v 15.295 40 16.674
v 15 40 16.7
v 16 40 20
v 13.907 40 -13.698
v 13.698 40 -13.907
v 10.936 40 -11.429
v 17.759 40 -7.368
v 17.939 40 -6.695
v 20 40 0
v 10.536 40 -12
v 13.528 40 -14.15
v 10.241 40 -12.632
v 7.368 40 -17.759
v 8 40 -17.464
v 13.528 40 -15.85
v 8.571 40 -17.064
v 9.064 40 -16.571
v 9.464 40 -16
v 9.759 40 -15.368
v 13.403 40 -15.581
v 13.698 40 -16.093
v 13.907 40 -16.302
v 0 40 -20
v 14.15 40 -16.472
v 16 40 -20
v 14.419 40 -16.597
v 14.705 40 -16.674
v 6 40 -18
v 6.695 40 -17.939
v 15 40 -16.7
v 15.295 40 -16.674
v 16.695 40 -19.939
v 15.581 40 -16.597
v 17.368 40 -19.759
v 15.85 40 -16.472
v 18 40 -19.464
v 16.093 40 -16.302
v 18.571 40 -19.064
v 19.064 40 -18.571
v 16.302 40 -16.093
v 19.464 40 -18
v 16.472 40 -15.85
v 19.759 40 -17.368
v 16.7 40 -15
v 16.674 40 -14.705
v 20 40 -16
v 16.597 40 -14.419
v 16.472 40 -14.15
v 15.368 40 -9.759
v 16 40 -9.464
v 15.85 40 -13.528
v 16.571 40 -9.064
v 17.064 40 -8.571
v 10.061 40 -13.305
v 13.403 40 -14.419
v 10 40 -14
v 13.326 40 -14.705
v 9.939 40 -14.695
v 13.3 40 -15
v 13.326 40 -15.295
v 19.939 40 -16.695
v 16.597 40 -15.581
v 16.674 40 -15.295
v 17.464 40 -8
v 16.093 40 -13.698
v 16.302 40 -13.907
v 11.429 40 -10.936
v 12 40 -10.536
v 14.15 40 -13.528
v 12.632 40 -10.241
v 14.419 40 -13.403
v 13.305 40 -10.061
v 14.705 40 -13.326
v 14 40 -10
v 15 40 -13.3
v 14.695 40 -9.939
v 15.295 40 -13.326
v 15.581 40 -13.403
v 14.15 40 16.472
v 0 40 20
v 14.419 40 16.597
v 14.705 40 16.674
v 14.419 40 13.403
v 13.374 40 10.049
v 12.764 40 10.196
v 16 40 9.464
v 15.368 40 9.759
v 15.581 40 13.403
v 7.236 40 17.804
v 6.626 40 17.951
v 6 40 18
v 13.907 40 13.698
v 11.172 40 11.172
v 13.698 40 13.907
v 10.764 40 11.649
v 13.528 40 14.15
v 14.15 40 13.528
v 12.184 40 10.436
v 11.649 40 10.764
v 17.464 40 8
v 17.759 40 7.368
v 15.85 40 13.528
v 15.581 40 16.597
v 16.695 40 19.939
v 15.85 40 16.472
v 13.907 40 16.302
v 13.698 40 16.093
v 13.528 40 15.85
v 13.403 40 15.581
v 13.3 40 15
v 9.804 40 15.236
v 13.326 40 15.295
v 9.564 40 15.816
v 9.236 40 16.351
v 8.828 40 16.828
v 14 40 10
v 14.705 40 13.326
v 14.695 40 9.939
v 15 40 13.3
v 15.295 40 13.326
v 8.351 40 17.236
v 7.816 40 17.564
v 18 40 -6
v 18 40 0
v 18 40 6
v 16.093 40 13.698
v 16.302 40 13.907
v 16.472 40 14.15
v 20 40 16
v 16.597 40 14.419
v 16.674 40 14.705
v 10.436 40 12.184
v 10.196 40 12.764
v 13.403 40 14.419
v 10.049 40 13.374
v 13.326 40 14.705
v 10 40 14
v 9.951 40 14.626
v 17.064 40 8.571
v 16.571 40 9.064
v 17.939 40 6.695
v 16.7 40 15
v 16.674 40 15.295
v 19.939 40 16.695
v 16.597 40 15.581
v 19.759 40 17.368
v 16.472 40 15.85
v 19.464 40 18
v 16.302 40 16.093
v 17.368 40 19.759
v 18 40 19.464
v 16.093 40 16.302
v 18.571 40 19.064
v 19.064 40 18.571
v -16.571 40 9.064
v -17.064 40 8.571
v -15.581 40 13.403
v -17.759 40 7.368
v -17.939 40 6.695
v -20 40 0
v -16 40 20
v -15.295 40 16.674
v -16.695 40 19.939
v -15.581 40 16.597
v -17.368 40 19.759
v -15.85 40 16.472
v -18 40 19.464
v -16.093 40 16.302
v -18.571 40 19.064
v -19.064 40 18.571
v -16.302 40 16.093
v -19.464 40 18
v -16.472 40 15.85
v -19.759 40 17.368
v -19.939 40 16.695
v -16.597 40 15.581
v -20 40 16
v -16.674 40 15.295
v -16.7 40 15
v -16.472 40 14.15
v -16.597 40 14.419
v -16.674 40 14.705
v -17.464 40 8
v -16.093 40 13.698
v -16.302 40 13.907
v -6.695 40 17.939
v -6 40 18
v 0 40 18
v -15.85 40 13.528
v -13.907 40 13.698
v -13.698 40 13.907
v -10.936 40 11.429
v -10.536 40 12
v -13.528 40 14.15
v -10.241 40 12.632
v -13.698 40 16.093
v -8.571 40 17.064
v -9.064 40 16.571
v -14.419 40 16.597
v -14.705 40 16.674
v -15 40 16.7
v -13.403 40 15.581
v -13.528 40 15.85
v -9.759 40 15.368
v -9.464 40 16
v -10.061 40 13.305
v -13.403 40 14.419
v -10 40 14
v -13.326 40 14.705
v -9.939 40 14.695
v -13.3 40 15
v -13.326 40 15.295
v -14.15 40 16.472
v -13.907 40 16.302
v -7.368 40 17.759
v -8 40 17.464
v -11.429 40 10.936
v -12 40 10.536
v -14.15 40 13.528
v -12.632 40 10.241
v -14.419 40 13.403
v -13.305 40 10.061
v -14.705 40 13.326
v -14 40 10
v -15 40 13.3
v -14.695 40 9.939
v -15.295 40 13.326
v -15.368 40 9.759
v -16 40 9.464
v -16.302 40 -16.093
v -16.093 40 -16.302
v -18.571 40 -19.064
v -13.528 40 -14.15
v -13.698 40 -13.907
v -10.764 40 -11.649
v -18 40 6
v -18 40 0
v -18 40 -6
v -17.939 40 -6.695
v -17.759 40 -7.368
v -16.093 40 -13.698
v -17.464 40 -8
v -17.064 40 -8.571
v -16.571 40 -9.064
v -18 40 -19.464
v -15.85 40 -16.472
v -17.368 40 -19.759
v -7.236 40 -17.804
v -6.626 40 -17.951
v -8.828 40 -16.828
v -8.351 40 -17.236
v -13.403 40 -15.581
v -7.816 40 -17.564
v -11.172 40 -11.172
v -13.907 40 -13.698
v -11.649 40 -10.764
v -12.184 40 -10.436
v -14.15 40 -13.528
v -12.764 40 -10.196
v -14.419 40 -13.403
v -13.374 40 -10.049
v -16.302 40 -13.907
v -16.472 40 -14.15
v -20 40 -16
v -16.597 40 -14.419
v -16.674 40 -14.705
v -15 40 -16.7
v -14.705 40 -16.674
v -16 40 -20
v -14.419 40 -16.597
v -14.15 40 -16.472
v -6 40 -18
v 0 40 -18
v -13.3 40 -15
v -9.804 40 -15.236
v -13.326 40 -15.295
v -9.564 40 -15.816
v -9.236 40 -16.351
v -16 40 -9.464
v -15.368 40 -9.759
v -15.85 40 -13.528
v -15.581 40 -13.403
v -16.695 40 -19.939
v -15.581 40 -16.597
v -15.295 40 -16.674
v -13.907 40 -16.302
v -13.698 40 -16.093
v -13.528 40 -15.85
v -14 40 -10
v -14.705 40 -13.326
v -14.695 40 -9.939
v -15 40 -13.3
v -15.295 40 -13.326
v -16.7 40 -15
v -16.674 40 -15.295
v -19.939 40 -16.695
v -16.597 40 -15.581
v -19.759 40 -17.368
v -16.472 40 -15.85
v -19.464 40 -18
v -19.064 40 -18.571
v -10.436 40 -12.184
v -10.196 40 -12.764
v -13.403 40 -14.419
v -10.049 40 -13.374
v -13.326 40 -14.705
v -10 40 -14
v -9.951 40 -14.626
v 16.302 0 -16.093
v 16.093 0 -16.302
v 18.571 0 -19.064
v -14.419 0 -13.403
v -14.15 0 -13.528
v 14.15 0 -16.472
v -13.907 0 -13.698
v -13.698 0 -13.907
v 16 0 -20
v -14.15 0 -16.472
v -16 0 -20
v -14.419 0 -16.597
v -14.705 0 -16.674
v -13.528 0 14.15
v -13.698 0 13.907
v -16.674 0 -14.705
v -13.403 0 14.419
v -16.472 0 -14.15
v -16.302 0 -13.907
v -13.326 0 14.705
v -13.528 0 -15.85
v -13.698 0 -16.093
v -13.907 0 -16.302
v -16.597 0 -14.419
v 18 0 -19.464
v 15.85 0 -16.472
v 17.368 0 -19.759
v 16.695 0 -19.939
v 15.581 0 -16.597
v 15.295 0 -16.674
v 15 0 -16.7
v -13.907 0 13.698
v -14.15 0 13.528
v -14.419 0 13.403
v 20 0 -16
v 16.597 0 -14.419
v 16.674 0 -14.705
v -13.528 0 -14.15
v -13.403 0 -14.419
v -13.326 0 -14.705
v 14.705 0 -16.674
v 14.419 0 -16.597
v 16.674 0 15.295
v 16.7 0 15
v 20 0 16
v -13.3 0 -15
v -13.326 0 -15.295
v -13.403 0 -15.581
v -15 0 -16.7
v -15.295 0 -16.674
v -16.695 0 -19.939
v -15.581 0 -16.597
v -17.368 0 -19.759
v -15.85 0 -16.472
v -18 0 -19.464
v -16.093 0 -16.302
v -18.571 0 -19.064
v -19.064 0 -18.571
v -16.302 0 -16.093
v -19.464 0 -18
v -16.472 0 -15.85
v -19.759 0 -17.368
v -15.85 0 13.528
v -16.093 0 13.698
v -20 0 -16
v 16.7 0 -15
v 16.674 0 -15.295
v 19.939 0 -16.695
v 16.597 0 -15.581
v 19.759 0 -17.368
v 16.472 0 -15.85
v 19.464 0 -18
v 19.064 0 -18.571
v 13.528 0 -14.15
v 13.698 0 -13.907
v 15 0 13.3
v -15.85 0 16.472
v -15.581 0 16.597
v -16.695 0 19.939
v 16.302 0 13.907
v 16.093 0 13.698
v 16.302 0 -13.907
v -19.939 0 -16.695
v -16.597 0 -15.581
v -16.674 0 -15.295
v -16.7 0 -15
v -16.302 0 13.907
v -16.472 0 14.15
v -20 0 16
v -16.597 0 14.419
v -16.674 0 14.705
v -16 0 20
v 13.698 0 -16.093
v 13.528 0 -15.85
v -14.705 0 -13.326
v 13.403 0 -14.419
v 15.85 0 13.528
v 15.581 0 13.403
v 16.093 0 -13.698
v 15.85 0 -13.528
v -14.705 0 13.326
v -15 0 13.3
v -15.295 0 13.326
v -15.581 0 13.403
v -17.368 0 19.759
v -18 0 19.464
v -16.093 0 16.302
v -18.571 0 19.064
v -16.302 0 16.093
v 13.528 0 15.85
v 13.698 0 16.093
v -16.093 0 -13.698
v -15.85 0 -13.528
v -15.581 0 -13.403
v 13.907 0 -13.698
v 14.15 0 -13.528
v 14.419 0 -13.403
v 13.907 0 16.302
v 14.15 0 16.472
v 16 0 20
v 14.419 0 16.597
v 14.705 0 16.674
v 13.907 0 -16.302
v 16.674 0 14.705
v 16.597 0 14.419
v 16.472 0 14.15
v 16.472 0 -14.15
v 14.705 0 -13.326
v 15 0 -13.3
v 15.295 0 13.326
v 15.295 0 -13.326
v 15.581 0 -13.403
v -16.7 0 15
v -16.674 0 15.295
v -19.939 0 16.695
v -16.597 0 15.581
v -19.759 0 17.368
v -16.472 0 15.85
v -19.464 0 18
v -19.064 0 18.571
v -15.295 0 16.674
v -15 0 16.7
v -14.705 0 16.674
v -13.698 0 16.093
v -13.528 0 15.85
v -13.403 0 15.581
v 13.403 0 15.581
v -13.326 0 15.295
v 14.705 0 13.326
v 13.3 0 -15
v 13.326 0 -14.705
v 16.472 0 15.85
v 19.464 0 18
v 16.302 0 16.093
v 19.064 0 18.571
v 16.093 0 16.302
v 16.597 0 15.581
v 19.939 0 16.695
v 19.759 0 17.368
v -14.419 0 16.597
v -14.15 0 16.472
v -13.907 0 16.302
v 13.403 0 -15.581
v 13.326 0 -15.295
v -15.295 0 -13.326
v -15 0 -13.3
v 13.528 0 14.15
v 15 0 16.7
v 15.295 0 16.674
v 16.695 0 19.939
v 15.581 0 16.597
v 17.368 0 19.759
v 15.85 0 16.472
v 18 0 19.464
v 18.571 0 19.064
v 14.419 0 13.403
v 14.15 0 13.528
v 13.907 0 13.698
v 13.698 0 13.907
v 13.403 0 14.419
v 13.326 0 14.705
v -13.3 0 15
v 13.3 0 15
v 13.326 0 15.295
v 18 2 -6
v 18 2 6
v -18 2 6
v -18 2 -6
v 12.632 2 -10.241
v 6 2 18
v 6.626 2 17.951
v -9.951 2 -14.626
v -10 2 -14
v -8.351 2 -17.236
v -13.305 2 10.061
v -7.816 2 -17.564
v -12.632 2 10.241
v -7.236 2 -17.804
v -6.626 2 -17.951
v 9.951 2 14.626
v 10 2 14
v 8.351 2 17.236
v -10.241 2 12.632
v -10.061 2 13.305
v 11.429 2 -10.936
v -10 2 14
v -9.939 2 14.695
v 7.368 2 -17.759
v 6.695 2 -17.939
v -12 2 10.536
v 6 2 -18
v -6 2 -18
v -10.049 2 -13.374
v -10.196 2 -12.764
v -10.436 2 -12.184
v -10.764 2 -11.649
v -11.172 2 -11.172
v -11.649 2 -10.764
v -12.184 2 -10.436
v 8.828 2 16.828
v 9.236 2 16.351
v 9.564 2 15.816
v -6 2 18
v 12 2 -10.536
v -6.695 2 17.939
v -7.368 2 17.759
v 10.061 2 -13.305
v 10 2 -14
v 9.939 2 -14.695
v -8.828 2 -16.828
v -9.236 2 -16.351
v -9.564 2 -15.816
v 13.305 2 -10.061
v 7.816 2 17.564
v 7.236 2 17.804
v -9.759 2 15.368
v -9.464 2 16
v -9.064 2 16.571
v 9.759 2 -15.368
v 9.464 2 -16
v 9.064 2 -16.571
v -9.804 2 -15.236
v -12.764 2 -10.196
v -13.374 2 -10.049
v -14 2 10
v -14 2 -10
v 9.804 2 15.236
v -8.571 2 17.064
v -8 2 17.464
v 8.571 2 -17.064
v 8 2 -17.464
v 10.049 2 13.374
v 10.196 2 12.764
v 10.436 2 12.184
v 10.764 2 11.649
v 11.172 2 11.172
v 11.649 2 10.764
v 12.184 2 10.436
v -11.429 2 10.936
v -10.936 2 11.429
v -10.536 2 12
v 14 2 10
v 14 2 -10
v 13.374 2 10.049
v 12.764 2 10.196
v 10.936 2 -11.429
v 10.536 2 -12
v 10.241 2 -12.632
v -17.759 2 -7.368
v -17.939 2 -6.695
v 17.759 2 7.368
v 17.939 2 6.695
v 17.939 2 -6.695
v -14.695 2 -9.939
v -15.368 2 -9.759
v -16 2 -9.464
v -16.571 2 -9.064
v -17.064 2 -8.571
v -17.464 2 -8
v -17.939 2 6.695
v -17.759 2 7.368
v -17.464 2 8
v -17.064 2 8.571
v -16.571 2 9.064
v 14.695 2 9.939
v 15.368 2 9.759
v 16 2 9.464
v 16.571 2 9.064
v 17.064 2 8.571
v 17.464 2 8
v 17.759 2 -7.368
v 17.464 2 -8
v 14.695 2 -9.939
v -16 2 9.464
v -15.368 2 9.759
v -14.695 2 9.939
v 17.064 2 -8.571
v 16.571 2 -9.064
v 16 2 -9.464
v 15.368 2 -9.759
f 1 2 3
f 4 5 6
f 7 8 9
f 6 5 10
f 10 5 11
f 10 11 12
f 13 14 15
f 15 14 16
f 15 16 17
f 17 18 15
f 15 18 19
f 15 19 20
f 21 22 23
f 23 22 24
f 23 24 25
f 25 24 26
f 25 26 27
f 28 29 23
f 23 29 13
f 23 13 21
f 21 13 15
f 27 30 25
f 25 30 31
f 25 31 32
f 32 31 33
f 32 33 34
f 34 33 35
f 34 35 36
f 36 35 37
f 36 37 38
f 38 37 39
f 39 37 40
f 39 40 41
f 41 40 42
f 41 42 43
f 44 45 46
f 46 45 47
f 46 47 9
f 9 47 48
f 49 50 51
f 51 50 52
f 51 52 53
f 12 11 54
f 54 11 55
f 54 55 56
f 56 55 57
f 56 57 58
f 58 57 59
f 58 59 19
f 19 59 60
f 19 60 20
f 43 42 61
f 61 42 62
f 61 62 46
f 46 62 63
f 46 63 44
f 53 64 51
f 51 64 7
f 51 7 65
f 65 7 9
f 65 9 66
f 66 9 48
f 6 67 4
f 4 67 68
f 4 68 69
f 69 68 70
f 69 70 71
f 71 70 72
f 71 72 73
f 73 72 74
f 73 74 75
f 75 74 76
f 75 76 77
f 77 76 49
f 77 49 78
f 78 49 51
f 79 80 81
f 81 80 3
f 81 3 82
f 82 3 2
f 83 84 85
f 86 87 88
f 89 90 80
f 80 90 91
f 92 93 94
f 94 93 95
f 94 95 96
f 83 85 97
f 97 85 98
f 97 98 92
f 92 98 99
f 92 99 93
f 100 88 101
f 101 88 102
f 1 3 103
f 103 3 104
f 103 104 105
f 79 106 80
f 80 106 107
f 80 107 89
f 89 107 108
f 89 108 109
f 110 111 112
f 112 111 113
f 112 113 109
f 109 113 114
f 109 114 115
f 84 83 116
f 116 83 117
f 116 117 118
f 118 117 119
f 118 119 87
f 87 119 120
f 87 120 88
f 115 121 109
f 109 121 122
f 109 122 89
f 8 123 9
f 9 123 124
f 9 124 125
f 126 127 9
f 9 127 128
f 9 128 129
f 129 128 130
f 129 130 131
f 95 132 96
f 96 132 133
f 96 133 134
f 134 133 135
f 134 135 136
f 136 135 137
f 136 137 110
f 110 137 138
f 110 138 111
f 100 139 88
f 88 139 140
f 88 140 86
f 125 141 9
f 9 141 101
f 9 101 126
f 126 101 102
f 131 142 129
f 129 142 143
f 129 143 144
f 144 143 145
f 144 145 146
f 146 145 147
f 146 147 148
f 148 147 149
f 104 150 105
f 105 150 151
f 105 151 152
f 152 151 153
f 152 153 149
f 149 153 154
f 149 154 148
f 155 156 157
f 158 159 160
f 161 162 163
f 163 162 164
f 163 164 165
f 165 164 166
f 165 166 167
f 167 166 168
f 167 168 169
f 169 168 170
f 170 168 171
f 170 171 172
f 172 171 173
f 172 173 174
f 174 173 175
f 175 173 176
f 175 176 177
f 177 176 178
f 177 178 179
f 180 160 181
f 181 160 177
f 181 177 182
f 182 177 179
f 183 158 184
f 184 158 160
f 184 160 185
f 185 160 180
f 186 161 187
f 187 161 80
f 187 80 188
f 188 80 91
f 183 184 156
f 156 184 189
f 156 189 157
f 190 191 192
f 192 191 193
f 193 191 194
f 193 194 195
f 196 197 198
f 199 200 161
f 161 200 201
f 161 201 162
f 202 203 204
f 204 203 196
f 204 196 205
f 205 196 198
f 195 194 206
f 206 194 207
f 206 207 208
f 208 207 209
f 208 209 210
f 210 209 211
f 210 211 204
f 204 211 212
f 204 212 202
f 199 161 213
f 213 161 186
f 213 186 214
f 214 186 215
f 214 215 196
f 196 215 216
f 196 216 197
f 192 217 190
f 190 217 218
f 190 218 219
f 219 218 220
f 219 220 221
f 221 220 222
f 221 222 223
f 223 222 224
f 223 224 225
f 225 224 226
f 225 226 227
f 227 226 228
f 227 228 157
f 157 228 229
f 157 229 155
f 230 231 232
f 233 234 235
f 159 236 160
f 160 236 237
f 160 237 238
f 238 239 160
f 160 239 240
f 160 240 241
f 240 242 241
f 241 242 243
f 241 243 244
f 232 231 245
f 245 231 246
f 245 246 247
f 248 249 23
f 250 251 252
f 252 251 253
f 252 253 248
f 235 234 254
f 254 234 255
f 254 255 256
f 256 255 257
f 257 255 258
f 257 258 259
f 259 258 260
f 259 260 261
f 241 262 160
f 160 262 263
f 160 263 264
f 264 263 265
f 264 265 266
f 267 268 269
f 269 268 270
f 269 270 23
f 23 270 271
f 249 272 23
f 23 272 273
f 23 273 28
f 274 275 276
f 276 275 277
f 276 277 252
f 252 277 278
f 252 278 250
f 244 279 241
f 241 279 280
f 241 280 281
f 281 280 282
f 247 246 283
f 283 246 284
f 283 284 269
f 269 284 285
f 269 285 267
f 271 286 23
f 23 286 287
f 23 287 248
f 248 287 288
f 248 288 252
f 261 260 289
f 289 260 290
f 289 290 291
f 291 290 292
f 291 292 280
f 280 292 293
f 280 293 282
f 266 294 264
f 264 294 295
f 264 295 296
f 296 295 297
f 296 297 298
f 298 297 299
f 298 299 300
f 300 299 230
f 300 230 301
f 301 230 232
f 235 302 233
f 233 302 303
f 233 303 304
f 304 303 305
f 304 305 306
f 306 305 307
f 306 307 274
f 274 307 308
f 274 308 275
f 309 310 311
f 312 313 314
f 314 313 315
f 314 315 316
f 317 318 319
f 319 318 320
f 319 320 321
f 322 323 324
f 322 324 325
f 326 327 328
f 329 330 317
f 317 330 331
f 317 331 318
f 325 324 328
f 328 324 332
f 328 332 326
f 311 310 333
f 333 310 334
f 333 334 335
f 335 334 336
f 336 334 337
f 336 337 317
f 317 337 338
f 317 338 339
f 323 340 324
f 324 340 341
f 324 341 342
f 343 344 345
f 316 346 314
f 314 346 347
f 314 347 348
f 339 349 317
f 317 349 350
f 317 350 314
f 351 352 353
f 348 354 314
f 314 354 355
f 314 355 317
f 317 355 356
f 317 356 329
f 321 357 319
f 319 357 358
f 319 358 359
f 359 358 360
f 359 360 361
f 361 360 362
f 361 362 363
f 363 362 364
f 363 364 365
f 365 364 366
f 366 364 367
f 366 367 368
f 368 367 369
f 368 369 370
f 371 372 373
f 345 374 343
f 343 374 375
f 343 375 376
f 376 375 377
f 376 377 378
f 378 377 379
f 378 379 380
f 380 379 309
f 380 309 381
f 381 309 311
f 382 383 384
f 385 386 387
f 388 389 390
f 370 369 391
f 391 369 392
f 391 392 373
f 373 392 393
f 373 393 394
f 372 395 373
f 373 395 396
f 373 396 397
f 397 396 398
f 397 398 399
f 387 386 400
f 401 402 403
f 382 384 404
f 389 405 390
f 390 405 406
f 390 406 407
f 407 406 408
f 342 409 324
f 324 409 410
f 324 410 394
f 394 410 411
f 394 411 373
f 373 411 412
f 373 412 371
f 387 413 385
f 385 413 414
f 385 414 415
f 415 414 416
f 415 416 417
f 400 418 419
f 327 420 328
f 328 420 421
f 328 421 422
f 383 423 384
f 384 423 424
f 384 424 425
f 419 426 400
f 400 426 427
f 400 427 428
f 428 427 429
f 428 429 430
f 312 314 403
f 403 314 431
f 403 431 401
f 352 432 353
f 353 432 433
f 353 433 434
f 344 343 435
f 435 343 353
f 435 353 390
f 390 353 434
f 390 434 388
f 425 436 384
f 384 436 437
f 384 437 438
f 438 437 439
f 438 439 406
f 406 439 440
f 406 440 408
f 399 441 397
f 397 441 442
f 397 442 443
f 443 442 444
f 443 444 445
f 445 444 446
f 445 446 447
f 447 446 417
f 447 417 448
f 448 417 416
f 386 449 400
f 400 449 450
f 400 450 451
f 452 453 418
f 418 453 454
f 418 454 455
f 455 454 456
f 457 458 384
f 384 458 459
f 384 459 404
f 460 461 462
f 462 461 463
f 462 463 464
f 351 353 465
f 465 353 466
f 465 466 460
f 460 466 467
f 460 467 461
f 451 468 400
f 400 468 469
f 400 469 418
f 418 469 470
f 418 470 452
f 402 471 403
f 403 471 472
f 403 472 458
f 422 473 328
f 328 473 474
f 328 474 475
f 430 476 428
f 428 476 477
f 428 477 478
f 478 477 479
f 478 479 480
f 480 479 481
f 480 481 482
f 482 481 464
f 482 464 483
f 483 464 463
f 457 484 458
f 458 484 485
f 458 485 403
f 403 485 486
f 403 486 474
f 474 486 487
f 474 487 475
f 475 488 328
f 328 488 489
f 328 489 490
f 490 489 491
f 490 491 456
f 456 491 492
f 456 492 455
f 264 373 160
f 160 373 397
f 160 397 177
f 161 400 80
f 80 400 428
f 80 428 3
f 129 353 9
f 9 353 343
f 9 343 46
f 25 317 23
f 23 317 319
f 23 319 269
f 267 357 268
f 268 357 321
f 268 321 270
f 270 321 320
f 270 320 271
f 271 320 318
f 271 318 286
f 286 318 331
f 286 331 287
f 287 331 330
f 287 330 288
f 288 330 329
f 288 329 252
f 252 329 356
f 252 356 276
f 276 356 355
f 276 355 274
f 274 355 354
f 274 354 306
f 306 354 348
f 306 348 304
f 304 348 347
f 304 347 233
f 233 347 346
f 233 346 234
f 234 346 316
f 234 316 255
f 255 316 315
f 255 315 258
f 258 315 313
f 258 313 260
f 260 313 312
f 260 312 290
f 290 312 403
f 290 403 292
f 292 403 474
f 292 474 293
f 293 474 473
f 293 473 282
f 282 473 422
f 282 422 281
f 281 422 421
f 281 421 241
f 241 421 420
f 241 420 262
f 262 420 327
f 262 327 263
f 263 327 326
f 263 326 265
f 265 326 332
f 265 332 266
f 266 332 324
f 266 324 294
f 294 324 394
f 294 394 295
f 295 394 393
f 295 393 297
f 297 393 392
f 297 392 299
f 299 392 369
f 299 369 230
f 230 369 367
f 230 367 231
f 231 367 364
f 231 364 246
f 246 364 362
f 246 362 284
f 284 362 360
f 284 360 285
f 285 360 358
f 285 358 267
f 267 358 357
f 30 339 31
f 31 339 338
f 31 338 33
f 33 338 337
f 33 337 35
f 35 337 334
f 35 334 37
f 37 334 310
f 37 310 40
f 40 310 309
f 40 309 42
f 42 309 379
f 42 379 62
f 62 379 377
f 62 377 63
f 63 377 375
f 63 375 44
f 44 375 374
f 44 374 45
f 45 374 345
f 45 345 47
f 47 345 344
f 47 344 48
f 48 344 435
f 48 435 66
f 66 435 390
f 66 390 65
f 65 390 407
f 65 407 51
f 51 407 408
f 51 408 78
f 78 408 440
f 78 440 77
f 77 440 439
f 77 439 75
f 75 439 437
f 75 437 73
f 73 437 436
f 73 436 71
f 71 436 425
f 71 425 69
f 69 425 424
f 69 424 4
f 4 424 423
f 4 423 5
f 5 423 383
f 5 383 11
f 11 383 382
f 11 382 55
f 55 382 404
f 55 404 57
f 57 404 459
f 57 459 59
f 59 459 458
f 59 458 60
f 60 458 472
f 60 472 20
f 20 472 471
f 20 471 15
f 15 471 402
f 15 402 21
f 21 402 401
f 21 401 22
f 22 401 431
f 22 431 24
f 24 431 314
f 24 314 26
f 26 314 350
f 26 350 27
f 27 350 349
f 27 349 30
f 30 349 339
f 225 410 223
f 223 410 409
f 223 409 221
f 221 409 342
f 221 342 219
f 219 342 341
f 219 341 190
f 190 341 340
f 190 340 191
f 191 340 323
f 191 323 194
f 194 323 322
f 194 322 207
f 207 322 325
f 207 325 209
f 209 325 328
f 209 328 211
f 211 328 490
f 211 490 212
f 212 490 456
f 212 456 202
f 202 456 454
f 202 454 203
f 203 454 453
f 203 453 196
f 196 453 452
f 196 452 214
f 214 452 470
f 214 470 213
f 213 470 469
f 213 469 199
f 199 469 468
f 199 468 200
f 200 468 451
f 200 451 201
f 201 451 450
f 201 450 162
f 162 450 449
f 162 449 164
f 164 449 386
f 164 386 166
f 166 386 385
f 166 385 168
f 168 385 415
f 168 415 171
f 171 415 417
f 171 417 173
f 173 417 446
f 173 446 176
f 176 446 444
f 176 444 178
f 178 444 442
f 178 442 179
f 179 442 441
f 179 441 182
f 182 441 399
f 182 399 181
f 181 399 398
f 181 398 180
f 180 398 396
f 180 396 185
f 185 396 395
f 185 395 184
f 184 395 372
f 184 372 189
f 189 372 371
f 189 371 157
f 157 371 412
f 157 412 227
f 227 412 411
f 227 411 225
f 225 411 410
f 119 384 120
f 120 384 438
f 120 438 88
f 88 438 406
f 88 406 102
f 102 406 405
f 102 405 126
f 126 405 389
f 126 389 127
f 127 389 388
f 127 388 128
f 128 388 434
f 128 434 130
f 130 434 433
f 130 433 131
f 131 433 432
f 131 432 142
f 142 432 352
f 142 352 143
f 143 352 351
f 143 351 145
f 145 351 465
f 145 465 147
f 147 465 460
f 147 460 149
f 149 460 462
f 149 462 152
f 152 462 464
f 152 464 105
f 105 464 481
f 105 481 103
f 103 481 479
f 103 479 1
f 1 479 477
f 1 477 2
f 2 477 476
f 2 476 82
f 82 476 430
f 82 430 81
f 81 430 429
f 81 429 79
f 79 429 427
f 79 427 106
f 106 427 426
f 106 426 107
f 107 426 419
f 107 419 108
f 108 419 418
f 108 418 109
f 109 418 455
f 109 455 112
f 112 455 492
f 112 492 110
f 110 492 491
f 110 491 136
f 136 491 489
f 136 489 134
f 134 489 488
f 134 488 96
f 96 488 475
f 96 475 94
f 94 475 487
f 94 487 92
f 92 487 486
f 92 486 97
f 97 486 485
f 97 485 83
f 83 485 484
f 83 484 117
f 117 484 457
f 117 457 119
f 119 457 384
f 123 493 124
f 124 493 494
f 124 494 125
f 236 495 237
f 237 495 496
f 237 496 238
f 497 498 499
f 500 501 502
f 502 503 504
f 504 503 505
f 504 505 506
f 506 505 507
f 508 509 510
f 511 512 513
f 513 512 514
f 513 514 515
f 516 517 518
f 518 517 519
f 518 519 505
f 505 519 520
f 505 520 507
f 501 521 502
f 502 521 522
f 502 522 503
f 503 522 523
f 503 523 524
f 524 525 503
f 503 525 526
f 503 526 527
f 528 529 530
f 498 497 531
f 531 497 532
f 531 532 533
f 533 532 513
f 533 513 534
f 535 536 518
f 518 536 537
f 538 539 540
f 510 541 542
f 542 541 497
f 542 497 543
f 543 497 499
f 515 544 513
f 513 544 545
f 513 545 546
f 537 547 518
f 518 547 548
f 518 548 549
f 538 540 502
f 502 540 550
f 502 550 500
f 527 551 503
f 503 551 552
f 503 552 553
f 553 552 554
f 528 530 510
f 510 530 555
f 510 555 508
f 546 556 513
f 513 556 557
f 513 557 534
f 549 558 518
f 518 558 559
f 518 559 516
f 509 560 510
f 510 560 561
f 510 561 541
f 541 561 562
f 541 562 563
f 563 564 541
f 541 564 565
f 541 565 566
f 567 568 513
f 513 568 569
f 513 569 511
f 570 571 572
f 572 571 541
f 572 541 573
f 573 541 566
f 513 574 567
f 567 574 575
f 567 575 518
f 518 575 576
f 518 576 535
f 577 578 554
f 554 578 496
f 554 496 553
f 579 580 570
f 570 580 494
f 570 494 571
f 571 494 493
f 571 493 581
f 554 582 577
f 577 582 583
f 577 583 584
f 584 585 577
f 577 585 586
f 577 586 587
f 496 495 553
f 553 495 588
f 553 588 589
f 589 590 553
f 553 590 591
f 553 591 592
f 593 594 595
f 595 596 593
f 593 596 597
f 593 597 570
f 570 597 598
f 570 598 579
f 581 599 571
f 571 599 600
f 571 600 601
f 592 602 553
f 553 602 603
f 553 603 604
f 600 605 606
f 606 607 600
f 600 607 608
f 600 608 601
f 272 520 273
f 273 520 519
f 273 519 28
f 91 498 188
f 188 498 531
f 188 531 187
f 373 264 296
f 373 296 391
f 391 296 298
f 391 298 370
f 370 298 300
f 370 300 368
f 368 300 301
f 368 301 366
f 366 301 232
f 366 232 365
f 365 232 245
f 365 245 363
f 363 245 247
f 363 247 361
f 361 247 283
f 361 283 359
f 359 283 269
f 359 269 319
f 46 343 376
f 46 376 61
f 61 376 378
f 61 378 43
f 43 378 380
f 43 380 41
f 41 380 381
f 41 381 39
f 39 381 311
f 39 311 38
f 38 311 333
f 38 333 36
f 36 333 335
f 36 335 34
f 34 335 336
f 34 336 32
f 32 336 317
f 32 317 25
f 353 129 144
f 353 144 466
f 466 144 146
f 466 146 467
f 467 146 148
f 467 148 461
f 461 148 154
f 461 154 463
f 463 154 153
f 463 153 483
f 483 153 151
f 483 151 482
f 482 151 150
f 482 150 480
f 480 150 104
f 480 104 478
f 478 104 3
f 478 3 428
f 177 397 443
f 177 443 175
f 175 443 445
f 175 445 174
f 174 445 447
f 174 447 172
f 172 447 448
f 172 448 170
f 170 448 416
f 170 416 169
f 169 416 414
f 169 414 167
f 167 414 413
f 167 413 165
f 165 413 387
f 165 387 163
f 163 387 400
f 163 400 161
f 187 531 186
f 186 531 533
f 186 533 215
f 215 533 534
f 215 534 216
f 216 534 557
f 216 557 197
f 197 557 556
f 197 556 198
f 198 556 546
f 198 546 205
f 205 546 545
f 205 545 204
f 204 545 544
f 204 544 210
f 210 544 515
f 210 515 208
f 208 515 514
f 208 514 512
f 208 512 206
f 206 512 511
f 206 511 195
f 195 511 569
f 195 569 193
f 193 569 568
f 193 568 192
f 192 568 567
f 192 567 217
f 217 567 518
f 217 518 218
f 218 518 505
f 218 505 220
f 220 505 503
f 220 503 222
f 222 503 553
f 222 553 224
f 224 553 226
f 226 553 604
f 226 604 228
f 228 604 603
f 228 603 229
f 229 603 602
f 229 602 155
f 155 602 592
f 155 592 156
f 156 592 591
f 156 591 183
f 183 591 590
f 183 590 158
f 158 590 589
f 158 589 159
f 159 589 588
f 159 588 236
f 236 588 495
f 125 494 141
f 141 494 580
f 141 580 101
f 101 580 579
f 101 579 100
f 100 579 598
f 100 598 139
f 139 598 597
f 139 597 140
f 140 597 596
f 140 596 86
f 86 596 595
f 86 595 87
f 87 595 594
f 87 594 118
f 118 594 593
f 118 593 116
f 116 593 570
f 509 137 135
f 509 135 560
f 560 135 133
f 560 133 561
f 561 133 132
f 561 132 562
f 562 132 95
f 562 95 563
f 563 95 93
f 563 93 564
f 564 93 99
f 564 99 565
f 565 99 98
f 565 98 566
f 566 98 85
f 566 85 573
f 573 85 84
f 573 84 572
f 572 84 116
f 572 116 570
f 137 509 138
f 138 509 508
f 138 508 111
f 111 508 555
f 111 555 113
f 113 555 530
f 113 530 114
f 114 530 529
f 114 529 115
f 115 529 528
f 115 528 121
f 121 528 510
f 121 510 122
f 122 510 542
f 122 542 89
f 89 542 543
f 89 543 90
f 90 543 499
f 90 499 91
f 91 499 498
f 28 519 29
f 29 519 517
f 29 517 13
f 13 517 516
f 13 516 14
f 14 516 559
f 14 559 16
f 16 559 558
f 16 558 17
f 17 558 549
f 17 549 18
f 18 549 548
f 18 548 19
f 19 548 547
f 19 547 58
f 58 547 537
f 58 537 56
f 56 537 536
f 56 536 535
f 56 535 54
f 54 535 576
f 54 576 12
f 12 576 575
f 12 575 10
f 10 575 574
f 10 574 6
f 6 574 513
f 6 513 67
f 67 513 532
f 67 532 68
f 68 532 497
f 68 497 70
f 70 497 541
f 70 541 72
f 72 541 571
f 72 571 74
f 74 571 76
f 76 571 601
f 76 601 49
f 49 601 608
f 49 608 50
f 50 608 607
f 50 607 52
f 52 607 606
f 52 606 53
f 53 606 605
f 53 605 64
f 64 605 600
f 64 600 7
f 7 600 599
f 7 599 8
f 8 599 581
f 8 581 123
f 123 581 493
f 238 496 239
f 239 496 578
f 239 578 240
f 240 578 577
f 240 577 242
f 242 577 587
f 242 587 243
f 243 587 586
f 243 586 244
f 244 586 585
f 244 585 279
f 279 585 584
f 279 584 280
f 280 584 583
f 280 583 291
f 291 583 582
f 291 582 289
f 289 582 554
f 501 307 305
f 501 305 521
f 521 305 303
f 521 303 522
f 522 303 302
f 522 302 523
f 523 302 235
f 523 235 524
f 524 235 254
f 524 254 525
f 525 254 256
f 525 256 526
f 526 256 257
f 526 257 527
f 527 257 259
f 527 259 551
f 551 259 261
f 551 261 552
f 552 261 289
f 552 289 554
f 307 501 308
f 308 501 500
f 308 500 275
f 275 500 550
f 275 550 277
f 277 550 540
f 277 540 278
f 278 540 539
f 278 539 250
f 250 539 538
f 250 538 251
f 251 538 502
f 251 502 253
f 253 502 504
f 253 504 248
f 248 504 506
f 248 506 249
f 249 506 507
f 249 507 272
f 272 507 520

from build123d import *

# Parameters (mm, degrees)
SKETCH1_W           = 40
SKETCH1_H           = 40
SKETCH1_R           = 1.7
BOSS_EXTRUDE1_DEPTH = 40
SKETCH2_W           = 36
SKETCH2_H           = 20
CUT_EXTRUDE1_DEPTH  = 38
CIRPATTERN1_COUNT   = 2
CIRPATTERN1_ANGLE   = 90
FILLET1_R           = 4


with BuildPart() as part:
    # Sketch1 → Boss-Extrude1 (new body)
    with BuildSketch(Plane(origin=(0, 0, 0), x_dir=(1, 0, 0), z_dir=(0, 1, 0))):
        Rectangle(SKETCH1_W, SKETCH1_H)
        with Locations(Location((15, 15, 0), (0, 0, 270))):
            Circle(SKETCH1_R, mode=Mode.SUBTRACT)
        with Locations(Location((-15, 15, 0), (0, 0, 270))):
            Circle(SKETCH1_R, mode=Mode.SUBTRACT)
        with Locations(Location((-15, -15, 0), (0, 0, 270))):
            Circle(SKETCH1_R, mode=Mode.SUBTRACT)
        with Locations(Location((15, -15, 0), (0, 0, 270))):
            Circle(SKETCH1_R, mode=Mode.SUBTRACT)
    extrude(amount=BOSS_EXTRUDE1_DEPTH)

    # Sketch2 → Cut-Extrude1 (cut)
    with BuildSketch(Plane(origin=(0, 40, 0), x_dir=(1, 0, 0), z_dir=(0, 1, 0))):
        Rectangle(SKETCH2_W, SKETCH2_H)
    cut_extrude1 = extrude(amount=-CUT_EXTRUDE1_DEPTH, mode=Mode.SUBTRACT)

    # CirPattern1: Cut-Extrude1 ×2 about axis
    cirpattern1_axis = Axis((0, 0, 0), (0, -1, 0))
    for i in range(1, CIRPATTERN1_COUNT):
        add(cut_extrude1.rotate(cirpattern1_axis, i * CIRPATTERN1_ANGLE / (CIRPATTERN1_COUNT - 1)), mode=Mode.SUBTRACT)

    # Fillet1
    fillet1_edges = [part.edges().sort_by_distance(p)[0] for p in [
        (-18, 21, 10),
        (-10, 21, 10),
        (-10, 21, 18),
        (10, 21, 18),
        (10, 21, 10),
        (18, 21, 10),
        (18, 21, -10),
        (10, 21, -10),
        (10, 21, -18),
        (-10, 21, -18),
        (-18, 21, -10),
        (-10, 21, -10),
        (-20, 20, -20),
        (20, 20, -20),
        (20, 20, 20),
        (-20, 20, 20),
    ]]
    fillet(fillet1_edges, radius=FILLET1_R - 0.0001)  # a hair under: the kernel refuses the full size


solid = part.part
